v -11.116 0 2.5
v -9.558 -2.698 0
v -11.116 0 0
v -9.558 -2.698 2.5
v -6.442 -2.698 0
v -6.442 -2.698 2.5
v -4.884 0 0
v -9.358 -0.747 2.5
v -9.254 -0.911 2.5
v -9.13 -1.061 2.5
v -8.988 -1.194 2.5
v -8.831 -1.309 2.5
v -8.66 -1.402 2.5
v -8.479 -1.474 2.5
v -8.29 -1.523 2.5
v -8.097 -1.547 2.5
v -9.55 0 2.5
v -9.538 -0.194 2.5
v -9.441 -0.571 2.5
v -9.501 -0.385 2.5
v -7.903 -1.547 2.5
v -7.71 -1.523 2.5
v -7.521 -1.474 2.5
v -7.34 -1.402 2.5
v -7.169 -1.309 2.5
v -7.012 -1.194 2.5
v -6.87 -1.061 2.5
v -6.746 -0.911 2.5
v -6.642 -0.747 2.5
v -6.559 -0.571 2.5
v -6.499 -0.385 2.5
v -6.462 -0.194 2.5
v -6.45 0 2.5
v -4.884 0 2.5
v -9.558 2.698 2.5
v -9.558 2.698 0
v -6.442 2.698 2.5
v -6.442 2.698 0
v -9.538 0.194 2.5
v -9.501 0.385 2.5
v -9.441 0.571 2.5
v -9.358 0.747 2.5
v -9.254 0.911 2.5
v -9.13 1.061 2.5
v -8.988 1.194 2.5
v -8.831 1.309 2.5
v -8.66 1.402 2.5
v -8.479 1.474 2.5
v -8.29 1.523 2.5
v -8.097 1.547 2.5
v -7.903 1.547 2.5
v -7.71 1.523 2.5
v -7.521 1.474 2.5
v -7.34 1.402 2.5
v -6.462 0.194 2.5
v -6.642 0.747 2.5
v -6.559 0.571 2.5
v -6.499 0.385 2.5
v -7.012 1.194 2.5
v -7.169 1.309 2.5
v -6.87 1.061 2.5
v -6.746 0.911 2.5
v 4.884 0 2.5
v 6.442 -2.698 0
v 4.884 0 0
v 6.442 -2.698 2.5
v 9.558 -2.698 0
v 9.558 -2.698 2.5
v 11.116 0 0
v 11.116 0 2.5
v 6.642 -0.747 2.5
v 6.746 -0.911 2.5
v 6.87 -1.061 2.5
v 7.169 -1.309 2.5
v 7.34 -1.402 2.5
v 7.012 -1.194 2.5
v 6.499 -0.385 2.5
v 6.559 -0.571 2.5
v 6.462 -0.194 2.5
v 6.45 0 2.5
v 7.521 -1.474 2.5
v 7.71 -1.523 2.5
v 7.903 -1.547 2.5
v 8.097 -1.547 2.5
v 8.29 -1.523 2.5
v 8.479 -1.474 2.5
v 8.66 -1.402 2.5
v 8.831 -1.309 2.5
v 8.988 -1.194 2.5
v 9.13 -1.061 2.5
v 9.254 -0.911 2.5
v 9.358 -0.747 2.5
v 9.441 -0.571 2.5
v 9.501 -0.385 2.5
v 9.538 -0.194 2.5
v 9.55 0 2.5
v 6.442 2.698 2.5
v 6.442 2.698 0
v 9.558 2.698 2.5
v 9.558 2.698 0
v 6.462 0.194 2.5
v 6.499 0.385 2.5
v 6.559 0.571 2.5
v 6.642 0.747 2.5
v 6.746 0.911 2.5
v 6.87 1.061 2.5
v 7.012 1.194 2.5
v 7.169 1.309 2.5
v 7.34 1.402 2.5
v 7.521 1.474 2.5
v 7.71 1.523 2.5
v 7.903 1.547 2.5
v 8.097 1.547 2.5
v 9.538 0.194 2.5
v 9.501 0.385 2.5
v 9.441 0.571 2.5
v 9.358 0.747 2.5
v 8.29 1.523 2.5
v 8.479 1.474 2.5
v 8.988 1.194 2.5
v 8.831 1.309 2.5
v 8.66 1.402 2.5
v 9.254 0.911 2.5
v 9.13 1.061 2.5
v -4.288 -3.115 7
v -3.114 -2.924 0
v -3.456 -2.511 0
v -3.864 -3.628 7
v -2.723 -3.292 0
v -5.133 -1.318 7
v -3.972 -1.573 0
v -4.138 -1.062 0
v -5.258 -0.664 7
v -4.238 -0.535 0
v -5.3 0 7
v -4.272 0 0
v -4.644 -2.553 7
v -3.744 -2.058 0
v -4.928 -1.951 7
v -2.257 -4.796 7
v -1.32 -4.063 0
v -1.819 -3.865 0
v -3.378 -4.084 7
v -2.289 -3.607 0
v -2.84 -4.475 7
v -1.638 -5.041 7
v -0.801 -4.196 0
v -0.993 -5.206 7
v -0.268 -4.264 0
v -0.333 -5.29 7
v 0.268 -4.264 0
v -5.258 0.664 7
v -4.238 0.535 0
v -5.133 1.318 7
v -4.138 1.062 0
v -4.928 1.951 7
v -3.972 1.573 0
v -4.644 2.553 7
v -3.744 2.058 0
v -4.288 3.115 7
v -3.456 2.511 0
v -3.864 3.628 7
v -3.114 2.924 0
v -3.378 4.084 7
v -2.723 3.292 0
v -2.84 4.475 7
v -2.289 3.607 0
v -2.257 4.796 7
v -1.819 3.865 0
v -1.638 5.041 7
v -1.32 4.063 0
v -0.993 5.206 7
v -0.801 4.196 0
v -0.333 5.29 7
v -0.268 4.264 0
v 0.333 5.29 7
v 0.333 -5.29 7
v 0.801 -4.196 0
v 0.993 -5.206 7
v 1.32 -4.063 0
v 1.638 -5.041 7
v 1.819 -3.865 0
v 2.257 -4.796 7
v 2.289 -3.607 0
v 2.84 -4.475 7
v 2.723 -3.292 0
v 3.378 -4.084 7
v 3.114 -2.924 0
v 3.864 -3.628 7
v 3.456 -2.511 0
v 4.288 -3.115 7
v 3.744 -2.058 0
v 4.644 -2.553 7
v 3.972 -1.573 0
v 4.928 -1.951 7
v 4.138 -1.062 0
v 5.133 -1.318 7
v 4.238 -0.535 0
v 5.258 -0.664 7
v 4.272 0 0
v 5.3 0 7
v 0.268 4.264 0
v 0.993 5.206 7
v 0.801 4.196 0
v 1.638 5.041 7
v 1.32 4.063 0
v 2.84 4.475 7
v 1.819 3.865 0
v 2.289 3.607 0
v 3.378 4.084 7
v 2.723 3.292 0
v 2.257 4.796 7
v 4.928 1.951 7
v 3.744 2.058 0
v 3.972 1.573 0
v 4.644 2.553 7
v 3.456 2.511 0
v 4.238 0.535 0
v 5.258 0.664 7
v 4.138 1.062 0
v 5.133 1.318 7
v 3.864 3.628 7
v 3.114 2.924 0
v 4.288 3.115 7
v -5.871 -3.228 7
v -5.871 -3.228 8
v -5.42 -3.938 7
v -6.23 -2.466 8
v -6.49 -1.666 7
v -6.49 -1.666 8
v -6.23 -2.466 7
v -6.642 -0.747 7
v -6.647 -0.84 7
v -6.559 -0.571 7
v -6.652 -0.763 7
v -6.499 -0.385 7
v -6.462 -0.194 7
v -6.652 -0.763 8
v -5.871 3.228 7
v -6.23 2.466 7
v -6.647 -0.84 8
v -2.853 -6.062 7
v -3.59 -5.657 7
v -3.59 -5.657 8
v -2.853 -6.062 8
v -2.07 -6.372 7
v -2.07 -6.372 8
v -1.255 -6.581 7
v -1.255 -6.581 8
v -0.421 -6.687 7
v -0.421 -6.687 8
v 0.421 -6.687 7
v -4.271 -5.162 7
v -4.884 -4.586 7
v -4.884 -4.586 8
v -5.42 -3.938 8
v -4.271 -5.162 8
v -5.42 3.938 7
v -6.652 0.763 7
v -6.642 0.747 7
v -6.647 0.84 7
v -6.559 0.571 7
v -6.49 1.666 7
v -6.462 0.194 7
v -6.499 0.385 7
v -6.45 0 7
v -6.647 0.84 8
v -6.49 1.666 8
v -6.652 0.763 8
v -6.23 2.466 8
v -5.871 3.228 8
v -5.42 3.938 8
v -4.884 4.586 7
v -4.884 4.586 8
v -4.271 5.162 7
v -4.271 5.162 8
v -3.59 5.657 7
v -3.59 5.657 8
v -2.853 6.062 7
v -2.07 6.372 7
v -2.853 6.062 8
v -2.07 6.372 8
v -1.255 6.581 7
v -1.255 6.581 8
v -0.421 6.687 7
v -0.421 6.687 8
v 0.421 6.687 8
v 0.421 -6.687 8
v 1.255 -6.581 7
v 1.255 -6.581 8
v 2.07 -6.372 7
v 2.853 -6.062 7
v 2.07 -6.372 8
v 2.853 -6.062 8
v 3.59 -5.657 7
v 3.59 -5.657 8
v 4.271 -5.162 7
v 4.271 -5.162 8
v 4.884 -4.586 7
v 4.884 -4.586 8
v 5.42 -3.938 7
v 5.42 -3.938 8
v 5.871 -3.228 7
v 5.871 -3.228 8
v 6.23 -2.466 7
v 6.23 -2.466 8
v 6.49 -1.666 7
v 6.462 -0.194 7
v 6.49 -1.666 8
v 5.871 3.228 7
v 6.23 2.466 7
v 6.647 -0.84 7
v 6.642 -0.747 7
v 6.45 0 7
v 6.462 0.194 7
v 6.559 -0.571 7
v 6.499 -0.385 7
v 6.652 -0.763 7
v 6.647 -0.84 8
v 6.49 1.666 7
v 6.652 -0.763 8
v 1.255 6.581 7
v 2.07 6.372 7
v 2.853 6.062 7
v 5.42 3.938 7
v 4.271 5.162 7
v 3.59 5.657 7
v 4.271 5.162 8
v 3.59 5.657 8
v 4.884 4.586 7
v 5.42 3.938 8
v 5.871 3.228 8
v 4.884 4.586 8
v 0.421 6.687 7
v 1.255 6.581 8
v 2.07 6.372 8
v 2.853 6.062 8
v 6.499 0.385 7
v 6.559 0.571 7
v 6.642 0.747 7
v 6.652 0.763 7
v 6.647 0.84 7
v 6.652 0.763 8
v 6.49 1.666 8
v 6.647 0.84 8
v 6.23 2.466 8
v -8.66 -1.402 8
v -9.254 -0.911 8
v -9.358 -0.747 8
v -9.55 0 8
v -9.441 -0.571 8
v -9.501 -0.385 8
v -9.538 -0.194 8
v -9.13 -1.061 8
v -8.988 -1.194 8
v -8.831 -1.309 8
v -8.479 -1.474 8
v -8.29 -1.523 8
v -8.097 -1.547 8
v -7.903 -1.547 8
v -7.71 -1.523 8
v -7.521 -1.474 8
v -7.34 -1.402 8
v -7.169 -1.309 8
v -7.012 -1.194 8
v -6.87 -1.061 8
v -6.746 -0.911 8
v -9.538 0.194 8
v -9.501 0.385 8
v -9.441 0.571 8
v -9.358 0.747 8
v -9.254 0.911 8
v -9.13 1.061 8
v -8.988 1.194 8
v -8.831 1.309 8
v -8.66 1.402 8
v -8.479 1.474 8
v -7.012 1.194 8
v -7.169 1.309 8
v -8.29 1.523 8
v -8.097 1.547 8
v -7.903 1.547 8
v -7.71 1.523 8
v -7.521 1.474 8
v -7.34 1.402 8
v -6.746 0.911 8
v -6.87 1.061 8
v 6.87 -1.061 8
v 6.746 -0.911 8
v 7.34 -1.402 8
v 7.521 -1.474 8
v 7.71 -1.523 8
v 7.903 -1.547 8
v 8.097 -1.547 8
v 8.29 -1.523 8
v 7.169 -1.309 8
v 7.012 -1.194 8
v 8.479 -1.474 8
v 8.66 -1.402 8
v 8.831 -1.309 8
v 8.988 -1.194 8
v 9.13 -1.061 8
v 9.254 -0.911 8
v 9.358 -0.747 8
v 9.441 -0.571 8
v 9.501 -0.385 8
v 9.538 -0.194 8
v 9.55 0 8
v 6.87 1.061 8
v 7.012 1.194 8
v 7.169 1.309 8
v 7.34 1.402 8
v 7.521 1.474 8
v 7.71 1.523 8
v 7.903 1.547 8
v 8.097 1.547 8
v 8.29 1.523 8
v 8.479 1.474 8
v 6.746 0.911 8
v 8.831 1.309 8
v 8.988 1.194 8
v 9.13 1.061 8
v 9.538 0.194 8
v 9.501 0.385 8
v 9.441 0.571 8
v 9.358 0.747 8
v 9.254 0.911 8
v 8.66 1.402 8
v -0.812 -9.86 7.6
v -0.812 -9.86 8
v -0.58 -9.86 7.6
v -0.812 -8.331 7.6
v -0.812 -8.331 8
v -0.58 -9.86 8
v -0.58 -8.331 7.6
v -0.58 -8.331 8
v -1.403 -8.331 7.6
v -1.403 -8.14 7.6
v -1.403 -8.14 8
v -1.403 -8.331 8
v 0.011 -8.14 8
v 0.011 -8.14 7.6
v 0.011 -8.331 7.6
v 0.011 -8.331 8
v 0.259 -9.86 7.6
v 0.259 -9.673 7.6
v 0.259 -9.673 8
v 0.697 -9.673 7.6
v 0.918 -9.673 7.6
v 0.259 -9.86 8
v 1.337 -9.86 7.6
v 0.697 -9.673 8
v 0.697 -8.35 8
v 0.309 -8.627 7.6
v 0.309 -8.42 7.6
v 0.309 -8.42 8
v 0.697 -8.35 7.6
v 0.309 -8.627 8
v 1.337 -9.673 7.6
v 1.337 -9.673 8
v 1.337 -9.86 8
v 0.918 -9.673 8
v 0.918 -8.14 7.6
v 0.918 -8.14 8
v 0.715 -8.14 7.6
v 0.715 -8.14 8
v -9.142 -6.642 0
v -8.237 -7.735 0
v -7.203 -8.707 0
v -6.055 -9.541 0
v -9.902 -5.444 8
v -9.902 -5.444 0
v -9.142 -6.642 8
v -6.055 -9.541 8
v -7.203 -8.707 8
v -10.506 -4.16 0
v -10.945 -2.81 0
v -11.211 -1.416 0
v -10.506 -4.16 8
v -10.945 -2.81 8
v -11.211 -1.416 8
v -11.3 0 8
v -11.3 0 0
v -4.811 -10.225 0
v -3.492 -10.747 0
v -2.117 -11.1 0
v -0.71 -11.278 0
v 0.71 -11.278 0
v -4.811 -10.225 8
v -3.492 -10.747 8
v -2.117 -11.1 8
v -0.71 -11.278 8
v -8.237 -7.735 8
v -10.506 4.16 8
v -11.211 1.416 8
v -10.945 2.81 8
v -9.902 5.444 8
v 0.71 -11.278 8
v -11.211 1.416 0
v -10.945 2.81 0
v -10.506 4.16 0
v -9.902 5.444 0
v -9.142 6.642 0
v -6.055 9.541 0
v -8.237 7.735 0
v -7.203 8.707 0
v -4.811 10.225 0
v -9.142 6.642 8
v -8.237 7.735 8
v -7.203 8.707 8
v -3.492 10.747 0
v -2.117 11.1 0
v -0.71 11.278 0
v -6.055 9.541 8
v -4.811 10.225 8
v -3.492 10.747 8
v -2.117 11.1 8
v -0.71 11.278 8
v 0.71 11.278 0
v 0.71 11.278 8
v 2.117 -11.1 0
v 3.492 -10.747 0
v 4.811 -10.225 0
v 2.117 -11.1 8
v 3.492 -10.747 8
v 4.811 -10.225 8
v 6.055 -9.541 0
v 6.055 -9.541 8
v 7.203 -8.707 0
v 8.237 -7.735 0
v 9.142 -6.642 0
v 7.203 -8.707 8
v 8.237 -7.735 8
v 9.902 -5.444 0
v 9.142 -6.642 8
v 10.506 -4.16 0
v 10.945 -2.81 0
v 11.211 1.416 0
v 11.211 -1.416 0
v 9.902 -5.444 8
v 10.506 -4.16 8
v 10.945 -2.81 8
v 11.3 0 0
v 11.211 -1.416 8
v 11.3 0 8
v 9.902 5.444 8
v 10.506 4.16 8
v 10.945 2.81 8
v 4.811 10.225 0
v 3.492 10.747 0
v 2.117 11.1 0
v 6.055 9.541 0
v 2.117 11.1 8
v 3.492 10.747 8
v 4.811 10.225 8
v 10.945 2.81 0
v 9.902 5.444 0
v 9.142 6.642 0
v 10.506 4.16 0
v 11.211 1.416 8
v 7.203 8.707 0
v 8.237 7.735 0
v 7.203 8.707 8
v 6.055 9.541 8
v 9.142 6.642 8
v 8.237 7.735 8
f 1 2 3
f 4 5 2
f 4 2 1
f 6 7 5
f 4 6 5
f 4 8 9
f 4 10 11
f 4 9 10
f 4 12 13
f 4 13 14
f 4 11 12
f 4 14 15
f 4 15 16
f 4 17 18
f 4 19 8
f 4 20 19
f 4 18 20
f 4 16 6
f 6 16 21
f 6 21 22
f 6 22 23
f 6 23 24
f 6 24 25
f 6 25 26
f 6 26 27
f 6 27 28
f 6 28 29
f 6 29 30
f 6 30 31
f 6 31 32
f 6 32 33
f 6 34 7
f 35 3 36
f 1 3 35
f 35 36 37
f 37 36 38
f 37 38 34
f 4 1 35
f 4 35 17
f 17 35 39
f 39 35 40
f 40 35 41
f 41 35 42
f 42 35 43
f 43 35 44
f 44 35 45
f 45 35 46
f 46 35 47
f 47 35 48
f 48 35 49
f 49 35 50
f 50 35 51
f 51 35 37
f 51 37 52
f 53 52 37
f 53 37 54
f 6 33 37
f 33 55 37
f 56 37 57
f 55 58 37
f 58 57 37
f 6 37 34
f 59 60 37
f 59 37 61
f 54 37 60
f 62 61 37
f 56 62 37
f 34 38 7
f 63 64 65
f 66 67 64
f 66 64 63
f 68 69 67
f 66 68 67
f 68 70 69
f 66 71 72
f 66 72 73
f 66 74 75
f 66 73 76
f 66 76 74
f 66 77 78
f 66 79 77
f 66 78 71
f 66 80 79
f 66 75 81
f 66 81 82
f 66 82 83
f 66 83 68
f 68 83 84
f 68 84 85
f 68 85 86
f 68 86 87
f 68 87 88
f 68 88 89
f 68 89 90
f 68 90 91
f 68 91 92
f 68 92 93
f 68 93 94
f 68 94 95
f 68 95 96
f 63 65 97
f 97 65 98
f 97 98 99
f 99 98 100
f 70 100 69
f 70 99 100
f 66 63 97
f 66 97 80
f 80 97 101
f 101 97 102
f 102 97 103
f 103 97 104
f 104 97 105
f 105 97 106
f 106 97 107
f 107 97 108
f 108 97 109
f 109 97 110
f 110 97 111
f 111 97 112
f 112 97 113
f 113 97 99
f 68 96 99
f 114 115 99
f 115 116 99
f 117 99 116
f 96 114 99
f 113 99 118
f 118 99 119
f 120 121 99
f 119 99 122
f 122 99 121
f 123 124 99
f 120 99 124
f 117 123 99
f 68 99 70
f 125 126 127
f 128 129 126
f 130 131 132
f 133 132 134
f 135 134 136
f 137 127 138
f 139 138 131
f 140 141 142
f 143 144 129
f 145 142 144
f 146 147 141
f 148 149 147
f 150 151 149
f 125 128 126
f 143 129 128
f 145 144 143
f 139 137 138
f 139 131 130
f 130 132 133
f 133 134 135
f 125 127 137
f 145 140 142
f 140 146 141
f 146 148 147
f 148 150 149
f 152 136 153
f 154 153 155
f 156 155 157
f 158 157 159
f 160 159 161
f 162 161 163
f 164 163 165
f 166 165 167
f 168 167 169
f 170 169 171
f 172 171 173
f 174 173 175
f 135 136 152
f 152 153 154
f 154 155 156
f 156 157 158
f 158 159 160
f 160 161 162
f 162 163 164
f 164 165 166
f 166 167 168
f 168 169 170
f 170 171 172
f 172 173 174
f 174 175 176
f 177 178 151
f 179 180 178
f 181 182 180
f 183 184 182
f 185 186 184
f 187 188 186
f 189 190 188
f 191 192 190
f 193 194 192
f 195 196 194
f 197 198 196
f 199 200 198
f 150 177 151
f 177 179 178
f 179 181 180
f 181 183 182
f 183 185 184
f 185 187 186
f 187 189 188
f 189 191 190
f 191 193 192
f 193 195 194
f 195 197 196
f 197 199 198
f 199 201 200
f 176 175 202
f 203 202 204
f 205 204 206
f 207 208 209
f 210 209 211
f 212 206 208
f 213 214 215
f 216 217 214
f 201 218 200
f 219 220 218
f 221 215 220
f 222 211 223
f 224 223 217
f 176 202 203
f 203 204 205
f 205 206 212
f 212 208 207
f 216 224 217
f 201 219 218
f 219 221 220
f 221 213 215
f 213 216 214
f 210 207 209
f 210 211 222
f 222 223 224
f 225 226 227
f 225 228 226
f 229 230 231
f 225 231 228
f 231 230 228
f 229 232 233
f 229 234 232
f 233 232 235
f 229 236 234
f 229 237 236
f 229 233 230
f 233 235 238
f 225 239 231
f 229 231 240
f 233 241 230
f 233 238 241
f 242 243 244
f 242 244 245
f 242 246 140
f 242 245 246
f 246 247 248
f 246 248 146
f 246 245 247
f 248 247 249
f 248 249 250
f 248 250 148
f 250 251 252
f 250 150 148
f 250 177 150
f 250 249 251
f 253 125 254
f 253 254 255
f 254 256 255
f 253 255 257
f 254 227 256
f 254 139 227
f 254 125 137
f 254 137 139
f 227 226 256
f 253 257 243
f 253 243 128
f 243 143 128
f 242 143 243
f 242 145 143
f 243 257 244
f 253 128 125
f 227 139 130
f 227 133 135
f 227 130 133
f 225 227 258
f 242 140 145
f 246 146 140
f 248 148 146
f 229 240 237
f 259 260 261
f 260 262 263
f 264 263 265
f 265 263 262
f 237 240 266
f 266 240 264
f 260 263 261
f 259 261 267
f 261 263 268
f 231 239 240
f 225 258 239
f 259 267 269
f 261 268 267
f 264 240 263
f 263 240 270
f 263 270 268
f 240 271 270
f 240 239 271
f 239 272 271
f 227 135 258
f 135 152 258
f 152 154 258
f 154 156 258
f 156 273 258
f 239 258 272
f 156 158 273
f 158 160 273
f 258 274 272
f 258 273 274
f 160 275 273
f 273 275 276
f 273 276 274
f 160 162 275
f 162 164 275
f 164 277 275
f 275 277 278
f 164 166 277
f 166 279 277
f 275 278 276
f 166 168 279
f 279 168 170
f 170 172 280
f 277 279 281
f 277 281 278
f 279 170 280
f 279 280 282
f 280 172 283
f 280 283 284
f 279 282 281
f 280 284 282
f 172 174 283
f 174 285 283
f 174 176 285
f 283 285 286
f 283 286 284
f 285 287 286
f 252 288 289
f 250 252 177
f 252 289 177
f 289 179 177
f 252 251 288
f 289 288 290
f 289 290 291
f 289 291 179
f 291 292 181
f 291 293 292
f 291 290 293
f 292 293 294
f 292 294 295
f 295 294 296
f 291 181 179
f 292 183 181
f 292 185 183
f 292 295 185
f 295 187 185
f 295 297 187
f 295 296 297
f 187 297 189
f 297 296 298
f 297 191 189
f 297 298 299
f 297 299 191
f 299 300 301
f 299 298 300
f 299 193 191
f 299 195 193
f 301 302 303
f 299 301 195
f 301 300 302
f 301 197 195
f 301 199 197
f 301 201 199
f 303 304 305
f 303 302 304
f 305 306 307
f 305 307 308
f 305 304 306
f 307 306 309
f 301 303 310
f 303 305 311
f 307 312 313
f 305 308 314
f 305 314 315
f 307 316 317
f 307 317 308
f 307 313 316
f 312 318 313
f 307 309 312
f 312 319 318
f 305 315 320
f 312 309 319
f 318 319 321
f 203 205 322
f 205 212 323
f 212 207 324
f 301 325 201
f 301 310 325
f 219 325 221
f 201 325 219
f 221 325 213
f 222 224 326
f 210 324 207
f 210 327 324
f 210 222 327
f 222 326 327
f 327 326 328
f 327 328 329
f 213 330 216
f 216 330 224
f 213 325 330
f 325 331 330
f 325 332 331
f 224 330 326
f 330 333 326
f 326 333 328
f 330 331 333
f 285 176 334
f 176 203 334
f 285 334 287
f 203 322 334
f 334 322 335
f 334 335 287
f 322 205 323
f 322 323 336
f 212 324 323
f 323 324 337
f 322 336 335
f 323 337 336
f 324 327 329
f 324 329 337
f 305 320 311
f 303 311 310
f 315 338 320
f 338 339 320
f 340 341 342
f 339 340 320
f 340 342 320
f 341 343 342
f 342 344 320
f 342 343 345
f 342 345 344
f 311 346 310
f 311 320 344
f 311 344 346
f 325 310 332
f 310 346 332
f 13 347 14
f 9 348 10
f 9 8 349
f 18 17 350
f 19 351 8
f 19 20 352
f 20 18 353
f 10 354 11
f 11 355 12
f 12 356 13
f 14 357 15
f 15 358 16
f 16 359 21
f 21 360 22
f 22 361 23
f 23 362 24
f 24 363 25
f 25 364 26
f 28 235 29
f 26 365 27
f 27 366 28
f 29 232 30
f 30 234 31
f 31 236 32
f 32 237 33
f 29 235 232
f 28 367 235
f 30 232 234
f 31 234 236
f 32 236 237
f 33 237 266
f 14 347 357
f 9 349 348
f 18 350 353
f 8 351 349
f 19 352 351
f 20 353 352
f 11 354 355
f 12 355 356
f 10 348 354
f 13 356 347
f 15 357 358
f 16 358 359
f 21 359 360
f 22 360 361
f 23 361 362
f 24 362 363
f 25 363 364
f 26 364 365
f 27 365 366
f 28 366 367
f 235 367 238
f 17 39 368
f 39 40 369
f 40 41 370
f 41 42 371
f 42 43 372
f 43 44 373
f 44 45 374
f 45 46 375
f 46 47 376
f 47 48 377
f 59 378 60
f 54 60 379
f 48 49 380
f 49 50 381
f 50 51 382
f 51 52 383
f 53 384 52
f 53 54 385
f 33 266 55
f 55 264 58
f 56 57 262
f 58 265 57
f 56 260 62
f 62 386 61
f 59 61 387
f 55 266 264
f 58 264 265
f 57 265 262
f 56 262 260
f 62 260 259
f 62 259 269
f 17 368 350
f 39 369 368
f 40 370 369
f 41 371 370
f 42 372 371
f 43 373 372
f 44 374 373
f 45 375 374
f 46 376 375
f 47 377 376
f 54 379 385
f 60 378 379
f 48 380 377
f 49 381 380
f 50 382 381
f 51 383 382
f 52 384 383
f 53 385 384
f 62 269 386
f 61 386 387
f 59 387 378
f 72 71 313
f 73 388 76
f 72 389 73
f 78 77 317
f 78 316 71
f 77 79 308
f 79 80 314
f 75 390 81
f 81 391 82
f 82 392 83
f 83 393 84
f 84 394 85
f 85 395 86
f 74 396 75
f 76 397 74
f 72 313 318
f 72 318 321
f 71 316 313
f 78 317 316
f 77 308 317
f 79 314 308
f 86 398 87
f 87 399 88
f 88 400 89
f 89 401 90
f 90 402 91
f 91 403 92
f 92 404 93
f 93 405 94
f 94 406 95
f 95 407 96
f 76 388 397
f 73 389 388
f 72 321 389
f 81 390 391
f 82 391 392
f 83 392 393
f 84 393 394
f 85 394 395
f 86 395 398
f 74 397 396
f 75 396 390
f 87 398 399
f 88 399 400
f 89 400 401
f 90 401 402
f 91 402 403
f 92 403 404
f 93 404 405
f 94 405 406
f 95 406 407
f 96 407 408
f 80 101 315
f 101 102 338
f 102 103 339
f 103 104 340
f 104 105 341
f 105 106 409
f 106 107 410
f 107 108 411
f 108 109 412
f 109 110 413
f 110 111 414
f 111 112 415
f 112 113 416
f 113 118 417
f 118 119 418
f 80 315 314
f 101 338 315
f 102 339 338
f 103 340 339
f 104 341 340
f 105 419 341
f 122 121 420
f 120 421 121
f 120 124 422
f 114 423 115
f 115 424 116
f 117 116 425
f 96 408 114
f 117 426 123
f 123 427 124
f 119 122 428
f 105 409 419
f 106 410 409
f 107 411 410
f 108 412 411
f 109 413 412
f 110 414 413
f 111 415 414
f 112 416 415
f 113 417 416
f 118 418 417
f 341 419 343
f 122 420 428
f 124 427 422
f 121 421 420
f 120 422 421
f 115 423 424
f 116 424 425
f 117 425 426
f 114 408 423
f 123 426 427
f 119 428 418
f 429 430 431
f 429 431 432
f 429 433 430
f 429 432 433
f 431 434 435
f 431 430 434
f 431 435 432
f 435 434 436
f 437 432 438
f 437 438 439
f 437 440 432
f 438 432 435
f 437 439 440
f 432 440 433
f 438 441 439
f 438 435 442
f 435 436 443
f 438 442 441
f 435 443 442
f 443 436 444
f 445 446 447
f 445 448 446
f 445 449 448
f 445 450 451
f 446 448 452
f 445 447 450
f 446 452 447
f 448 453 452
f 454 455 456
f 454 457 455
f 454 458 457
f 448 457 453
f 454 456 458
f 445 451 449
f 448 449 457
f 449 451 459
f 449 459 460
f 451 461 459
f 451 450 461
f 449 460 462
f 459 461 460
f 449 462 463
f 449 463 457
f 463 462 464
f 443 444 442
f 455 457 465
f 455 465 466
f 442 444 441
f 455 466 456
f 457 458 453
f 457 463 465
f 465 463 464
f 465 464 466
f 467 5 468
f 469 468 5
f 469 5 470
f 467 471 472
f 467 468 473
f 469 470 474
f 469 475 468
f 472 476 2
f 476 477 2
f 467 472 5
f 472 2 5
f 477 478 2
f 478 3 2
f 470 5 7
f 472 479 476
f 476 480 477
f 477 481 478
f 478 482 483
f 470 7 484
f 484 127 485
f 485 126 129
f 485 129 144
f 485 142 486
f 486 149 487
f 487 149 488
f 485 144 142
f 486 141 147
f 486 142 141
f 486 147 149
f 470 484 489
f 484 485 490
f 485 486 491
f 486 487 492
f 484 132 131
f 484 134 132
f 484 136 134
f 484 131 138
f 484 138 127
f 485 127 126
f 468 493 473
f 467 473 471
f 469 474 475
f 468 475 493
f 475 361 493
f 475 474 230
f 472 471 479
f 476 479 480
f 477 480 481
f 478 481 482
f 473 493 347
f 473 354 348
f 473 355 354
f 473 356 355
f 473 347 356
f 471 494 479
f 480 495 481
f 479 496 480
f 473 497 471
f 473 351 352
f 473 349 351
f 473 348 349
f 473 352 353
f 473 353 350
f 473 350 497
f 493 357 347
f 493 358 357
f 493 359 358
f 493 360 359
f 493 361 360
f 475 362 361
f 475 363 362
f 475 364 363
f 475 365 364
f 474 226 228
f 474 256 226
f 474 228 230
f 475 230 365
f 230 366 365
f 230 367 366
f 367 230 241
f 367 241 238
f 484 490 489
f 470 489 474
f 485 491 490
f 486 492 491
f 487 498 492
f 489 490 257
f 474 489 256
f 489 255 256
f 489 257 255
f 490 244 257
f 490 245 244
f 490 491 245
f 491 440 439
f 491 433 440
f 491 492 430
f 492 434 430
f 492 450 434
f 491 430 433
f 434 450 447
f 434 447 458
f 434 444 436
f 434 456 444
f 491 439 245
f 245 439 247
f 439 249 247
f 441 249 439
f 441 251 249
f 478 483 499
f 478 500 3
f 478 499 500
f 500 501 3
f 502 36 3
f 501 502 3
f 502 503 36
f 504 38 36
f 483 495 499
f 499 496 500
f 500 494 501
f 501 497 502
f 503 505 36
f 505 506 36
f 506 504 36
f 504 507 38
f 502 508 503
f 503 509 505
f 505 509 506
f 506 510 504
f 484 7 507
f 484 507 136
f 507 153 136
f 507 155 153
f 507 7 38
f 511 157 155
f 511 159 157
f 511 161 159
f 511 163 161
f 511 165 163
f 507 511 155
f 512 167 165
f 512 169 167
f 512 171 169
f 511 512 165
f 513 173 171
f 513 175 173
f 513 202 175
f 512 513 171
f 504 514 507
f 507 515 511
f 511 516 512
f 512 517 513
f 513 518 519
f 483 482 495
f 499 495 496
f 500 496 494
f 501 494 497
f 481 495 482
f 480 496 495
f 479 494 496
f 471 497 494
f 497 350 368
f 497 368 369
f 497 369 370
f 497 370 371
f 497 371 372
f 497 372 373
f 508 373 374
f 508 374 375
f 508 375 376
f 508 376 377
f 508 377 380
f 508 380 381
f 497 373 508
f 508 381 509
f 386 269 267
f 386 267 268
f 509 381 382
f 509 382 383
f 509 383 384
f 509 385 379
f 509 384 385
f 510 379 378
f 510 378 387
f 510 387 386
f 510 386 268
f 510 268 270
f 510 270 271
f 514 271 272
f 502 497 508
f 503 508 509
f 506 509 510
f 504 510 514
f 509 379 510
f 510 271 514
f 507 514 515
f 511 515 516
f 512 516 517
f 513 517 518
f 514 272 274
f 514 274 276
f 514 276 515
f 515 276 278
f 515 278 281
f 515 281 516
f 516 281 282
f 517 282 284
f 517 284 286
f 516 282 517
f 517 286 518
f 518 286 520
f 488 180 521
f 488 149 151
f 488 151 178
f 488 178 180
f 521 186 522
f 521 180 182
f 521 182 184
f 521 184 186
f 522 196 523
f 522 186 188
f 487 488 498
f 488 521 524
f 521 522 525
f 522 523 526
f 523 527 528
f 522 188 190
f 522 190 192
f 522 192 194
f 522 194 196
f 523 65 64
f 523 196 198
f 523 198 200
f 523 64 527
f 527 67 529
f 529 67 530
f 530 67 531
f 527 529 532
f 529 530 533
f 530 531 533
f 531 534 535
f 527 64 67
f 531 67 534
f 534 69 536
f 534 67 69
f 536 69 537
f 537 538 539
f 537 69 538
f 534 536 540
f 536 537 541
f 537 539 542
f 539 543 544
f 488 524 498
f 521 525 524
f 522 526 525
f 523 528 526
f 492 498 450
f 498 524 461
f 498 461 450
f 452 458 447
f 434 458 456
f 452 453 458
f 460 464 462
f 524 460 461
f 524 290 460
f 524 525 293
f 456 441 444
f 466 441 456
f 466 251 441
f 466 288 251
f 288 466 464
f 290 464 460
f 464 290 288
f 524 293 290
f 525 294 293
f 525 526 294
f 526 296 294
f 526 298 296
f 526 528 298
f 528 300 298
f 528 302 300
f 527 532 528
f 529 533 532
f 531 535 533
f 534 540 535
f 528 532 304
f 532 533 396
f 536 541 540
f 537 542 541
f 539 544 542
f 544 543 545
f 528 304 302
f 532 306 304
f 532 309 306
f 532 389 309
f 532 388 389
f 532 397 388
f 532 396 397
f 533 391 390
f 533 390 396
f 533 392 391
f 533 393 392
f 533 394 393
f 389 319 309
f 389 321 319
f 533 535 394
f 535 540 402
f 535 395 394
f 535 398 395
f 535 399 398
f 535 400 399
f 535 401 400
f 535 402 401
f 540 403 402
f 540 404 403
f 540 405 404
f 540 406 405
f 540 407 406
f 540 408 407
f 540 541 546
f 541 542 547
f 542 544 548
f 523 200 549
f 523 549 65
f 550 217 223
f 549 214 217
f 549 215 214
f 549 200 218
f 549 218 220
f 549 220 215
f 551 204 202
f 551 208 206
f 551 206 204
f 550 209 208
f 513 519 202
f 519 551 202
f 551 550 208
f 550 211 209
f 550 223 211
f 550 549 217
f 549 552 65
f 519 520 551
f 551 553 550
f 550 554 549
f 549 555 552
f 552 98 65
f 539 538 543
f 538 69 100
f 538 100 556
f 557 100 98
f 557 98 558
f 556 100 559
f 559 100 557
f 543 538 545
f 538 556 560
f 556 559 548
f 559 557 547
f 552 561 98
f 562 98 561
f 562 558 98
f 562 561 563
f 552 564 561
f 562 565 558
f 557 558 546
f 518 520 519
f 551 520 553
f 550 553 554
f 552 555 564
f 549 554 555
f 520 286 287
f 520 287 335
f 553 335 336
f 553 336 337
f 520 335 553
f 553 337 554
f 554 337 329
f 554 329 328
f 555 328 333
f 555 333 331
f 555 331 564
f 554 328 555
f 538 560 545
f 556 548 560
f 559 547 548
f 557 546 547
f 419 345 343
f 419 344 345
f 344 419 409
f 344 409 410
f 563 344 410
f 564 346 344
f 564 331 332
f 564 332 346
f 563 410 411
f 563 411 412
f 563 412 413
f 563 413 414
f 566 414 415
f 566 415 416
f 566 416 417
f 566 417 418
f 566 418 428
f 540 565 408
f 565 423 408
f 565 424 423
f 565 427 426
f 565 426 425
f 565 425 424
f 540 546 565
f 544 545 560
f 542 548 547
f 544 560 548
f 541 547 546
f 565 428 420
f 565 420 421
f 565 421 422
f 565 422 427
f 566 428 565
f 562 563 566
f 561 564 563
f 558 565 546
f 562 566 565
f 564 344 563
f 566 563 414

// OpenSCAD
$fn = 50;

difference() {
	union() {
		translate(v = [0, 0, -3.5]) {
			rotate(a = [0, 0, 0]) {
				difference() {
					union() {
						translate(v = [0, 0, 3.5]) {
							cylinder(h = 8, r = 11.3);
						}
					}
					union() {
						translate(v = [-8, 0, 3.5]) {
							rotate(a = [0, 0, 0]) {
								difference() {
									union() {
										linear_extrude(height = 2.5) {
											polygon(points = [[3.1158, 0.0], [1.5579000000000005, 2.698361953111554], [-1.5578999999999994, 2.6983619531115544], [-3.1158, 3.815754496783323e-16], [-1.5579000000000014, -2.6983619531115535], [1.557899999999998, -2.6983619531115552]]);
										}
									}
									union();
								}
							}
						}
						translate(v = [8, 0, 3.5]) {
							rotate(a = [0, 0, 0]) {
								difference() {
									union() {
										linear_extrude(height = 2.5) {
											polygon(points = [[3.1158, 0.0], [1.5579000000000005, 2.698361953111554], [-1.5578999999999994, 2.6983619531115544], [-3.1158, 3.815754496783323e-16], [-1.5579000000000014, -2.6983619531115535], [1.557899999999998, -2.6983619531115552]]);
										}
									}
									union();
								}
							}
						}
						translate(v = [0, 0, 3.49]) {
							cylinder(h = 7.01, r1 = 4.270588235294118, r2 = 5.3);
						}
						translate(v = [0, 0, 10.5]) {
							cylinder(h = 1.1, r = 6.7);
						}
						translate(v = [-8, 0, 2.5]) {
							cylinder(h = 10, r = 1.55);
						}
						translate(v = [8, 0, 2.5]) {
							cylinder(h = 10, r = 1.55);
						}
						translate(v = [0, -9, 11.1]) {
							linear_extrude(height = 0.45) {
								text(font = "Liberation Sans", halign = "center", size = 1.8, text = "T1", valign = "center");
							}
						}
					}
				}
			}
		}
	}
	union();
}
